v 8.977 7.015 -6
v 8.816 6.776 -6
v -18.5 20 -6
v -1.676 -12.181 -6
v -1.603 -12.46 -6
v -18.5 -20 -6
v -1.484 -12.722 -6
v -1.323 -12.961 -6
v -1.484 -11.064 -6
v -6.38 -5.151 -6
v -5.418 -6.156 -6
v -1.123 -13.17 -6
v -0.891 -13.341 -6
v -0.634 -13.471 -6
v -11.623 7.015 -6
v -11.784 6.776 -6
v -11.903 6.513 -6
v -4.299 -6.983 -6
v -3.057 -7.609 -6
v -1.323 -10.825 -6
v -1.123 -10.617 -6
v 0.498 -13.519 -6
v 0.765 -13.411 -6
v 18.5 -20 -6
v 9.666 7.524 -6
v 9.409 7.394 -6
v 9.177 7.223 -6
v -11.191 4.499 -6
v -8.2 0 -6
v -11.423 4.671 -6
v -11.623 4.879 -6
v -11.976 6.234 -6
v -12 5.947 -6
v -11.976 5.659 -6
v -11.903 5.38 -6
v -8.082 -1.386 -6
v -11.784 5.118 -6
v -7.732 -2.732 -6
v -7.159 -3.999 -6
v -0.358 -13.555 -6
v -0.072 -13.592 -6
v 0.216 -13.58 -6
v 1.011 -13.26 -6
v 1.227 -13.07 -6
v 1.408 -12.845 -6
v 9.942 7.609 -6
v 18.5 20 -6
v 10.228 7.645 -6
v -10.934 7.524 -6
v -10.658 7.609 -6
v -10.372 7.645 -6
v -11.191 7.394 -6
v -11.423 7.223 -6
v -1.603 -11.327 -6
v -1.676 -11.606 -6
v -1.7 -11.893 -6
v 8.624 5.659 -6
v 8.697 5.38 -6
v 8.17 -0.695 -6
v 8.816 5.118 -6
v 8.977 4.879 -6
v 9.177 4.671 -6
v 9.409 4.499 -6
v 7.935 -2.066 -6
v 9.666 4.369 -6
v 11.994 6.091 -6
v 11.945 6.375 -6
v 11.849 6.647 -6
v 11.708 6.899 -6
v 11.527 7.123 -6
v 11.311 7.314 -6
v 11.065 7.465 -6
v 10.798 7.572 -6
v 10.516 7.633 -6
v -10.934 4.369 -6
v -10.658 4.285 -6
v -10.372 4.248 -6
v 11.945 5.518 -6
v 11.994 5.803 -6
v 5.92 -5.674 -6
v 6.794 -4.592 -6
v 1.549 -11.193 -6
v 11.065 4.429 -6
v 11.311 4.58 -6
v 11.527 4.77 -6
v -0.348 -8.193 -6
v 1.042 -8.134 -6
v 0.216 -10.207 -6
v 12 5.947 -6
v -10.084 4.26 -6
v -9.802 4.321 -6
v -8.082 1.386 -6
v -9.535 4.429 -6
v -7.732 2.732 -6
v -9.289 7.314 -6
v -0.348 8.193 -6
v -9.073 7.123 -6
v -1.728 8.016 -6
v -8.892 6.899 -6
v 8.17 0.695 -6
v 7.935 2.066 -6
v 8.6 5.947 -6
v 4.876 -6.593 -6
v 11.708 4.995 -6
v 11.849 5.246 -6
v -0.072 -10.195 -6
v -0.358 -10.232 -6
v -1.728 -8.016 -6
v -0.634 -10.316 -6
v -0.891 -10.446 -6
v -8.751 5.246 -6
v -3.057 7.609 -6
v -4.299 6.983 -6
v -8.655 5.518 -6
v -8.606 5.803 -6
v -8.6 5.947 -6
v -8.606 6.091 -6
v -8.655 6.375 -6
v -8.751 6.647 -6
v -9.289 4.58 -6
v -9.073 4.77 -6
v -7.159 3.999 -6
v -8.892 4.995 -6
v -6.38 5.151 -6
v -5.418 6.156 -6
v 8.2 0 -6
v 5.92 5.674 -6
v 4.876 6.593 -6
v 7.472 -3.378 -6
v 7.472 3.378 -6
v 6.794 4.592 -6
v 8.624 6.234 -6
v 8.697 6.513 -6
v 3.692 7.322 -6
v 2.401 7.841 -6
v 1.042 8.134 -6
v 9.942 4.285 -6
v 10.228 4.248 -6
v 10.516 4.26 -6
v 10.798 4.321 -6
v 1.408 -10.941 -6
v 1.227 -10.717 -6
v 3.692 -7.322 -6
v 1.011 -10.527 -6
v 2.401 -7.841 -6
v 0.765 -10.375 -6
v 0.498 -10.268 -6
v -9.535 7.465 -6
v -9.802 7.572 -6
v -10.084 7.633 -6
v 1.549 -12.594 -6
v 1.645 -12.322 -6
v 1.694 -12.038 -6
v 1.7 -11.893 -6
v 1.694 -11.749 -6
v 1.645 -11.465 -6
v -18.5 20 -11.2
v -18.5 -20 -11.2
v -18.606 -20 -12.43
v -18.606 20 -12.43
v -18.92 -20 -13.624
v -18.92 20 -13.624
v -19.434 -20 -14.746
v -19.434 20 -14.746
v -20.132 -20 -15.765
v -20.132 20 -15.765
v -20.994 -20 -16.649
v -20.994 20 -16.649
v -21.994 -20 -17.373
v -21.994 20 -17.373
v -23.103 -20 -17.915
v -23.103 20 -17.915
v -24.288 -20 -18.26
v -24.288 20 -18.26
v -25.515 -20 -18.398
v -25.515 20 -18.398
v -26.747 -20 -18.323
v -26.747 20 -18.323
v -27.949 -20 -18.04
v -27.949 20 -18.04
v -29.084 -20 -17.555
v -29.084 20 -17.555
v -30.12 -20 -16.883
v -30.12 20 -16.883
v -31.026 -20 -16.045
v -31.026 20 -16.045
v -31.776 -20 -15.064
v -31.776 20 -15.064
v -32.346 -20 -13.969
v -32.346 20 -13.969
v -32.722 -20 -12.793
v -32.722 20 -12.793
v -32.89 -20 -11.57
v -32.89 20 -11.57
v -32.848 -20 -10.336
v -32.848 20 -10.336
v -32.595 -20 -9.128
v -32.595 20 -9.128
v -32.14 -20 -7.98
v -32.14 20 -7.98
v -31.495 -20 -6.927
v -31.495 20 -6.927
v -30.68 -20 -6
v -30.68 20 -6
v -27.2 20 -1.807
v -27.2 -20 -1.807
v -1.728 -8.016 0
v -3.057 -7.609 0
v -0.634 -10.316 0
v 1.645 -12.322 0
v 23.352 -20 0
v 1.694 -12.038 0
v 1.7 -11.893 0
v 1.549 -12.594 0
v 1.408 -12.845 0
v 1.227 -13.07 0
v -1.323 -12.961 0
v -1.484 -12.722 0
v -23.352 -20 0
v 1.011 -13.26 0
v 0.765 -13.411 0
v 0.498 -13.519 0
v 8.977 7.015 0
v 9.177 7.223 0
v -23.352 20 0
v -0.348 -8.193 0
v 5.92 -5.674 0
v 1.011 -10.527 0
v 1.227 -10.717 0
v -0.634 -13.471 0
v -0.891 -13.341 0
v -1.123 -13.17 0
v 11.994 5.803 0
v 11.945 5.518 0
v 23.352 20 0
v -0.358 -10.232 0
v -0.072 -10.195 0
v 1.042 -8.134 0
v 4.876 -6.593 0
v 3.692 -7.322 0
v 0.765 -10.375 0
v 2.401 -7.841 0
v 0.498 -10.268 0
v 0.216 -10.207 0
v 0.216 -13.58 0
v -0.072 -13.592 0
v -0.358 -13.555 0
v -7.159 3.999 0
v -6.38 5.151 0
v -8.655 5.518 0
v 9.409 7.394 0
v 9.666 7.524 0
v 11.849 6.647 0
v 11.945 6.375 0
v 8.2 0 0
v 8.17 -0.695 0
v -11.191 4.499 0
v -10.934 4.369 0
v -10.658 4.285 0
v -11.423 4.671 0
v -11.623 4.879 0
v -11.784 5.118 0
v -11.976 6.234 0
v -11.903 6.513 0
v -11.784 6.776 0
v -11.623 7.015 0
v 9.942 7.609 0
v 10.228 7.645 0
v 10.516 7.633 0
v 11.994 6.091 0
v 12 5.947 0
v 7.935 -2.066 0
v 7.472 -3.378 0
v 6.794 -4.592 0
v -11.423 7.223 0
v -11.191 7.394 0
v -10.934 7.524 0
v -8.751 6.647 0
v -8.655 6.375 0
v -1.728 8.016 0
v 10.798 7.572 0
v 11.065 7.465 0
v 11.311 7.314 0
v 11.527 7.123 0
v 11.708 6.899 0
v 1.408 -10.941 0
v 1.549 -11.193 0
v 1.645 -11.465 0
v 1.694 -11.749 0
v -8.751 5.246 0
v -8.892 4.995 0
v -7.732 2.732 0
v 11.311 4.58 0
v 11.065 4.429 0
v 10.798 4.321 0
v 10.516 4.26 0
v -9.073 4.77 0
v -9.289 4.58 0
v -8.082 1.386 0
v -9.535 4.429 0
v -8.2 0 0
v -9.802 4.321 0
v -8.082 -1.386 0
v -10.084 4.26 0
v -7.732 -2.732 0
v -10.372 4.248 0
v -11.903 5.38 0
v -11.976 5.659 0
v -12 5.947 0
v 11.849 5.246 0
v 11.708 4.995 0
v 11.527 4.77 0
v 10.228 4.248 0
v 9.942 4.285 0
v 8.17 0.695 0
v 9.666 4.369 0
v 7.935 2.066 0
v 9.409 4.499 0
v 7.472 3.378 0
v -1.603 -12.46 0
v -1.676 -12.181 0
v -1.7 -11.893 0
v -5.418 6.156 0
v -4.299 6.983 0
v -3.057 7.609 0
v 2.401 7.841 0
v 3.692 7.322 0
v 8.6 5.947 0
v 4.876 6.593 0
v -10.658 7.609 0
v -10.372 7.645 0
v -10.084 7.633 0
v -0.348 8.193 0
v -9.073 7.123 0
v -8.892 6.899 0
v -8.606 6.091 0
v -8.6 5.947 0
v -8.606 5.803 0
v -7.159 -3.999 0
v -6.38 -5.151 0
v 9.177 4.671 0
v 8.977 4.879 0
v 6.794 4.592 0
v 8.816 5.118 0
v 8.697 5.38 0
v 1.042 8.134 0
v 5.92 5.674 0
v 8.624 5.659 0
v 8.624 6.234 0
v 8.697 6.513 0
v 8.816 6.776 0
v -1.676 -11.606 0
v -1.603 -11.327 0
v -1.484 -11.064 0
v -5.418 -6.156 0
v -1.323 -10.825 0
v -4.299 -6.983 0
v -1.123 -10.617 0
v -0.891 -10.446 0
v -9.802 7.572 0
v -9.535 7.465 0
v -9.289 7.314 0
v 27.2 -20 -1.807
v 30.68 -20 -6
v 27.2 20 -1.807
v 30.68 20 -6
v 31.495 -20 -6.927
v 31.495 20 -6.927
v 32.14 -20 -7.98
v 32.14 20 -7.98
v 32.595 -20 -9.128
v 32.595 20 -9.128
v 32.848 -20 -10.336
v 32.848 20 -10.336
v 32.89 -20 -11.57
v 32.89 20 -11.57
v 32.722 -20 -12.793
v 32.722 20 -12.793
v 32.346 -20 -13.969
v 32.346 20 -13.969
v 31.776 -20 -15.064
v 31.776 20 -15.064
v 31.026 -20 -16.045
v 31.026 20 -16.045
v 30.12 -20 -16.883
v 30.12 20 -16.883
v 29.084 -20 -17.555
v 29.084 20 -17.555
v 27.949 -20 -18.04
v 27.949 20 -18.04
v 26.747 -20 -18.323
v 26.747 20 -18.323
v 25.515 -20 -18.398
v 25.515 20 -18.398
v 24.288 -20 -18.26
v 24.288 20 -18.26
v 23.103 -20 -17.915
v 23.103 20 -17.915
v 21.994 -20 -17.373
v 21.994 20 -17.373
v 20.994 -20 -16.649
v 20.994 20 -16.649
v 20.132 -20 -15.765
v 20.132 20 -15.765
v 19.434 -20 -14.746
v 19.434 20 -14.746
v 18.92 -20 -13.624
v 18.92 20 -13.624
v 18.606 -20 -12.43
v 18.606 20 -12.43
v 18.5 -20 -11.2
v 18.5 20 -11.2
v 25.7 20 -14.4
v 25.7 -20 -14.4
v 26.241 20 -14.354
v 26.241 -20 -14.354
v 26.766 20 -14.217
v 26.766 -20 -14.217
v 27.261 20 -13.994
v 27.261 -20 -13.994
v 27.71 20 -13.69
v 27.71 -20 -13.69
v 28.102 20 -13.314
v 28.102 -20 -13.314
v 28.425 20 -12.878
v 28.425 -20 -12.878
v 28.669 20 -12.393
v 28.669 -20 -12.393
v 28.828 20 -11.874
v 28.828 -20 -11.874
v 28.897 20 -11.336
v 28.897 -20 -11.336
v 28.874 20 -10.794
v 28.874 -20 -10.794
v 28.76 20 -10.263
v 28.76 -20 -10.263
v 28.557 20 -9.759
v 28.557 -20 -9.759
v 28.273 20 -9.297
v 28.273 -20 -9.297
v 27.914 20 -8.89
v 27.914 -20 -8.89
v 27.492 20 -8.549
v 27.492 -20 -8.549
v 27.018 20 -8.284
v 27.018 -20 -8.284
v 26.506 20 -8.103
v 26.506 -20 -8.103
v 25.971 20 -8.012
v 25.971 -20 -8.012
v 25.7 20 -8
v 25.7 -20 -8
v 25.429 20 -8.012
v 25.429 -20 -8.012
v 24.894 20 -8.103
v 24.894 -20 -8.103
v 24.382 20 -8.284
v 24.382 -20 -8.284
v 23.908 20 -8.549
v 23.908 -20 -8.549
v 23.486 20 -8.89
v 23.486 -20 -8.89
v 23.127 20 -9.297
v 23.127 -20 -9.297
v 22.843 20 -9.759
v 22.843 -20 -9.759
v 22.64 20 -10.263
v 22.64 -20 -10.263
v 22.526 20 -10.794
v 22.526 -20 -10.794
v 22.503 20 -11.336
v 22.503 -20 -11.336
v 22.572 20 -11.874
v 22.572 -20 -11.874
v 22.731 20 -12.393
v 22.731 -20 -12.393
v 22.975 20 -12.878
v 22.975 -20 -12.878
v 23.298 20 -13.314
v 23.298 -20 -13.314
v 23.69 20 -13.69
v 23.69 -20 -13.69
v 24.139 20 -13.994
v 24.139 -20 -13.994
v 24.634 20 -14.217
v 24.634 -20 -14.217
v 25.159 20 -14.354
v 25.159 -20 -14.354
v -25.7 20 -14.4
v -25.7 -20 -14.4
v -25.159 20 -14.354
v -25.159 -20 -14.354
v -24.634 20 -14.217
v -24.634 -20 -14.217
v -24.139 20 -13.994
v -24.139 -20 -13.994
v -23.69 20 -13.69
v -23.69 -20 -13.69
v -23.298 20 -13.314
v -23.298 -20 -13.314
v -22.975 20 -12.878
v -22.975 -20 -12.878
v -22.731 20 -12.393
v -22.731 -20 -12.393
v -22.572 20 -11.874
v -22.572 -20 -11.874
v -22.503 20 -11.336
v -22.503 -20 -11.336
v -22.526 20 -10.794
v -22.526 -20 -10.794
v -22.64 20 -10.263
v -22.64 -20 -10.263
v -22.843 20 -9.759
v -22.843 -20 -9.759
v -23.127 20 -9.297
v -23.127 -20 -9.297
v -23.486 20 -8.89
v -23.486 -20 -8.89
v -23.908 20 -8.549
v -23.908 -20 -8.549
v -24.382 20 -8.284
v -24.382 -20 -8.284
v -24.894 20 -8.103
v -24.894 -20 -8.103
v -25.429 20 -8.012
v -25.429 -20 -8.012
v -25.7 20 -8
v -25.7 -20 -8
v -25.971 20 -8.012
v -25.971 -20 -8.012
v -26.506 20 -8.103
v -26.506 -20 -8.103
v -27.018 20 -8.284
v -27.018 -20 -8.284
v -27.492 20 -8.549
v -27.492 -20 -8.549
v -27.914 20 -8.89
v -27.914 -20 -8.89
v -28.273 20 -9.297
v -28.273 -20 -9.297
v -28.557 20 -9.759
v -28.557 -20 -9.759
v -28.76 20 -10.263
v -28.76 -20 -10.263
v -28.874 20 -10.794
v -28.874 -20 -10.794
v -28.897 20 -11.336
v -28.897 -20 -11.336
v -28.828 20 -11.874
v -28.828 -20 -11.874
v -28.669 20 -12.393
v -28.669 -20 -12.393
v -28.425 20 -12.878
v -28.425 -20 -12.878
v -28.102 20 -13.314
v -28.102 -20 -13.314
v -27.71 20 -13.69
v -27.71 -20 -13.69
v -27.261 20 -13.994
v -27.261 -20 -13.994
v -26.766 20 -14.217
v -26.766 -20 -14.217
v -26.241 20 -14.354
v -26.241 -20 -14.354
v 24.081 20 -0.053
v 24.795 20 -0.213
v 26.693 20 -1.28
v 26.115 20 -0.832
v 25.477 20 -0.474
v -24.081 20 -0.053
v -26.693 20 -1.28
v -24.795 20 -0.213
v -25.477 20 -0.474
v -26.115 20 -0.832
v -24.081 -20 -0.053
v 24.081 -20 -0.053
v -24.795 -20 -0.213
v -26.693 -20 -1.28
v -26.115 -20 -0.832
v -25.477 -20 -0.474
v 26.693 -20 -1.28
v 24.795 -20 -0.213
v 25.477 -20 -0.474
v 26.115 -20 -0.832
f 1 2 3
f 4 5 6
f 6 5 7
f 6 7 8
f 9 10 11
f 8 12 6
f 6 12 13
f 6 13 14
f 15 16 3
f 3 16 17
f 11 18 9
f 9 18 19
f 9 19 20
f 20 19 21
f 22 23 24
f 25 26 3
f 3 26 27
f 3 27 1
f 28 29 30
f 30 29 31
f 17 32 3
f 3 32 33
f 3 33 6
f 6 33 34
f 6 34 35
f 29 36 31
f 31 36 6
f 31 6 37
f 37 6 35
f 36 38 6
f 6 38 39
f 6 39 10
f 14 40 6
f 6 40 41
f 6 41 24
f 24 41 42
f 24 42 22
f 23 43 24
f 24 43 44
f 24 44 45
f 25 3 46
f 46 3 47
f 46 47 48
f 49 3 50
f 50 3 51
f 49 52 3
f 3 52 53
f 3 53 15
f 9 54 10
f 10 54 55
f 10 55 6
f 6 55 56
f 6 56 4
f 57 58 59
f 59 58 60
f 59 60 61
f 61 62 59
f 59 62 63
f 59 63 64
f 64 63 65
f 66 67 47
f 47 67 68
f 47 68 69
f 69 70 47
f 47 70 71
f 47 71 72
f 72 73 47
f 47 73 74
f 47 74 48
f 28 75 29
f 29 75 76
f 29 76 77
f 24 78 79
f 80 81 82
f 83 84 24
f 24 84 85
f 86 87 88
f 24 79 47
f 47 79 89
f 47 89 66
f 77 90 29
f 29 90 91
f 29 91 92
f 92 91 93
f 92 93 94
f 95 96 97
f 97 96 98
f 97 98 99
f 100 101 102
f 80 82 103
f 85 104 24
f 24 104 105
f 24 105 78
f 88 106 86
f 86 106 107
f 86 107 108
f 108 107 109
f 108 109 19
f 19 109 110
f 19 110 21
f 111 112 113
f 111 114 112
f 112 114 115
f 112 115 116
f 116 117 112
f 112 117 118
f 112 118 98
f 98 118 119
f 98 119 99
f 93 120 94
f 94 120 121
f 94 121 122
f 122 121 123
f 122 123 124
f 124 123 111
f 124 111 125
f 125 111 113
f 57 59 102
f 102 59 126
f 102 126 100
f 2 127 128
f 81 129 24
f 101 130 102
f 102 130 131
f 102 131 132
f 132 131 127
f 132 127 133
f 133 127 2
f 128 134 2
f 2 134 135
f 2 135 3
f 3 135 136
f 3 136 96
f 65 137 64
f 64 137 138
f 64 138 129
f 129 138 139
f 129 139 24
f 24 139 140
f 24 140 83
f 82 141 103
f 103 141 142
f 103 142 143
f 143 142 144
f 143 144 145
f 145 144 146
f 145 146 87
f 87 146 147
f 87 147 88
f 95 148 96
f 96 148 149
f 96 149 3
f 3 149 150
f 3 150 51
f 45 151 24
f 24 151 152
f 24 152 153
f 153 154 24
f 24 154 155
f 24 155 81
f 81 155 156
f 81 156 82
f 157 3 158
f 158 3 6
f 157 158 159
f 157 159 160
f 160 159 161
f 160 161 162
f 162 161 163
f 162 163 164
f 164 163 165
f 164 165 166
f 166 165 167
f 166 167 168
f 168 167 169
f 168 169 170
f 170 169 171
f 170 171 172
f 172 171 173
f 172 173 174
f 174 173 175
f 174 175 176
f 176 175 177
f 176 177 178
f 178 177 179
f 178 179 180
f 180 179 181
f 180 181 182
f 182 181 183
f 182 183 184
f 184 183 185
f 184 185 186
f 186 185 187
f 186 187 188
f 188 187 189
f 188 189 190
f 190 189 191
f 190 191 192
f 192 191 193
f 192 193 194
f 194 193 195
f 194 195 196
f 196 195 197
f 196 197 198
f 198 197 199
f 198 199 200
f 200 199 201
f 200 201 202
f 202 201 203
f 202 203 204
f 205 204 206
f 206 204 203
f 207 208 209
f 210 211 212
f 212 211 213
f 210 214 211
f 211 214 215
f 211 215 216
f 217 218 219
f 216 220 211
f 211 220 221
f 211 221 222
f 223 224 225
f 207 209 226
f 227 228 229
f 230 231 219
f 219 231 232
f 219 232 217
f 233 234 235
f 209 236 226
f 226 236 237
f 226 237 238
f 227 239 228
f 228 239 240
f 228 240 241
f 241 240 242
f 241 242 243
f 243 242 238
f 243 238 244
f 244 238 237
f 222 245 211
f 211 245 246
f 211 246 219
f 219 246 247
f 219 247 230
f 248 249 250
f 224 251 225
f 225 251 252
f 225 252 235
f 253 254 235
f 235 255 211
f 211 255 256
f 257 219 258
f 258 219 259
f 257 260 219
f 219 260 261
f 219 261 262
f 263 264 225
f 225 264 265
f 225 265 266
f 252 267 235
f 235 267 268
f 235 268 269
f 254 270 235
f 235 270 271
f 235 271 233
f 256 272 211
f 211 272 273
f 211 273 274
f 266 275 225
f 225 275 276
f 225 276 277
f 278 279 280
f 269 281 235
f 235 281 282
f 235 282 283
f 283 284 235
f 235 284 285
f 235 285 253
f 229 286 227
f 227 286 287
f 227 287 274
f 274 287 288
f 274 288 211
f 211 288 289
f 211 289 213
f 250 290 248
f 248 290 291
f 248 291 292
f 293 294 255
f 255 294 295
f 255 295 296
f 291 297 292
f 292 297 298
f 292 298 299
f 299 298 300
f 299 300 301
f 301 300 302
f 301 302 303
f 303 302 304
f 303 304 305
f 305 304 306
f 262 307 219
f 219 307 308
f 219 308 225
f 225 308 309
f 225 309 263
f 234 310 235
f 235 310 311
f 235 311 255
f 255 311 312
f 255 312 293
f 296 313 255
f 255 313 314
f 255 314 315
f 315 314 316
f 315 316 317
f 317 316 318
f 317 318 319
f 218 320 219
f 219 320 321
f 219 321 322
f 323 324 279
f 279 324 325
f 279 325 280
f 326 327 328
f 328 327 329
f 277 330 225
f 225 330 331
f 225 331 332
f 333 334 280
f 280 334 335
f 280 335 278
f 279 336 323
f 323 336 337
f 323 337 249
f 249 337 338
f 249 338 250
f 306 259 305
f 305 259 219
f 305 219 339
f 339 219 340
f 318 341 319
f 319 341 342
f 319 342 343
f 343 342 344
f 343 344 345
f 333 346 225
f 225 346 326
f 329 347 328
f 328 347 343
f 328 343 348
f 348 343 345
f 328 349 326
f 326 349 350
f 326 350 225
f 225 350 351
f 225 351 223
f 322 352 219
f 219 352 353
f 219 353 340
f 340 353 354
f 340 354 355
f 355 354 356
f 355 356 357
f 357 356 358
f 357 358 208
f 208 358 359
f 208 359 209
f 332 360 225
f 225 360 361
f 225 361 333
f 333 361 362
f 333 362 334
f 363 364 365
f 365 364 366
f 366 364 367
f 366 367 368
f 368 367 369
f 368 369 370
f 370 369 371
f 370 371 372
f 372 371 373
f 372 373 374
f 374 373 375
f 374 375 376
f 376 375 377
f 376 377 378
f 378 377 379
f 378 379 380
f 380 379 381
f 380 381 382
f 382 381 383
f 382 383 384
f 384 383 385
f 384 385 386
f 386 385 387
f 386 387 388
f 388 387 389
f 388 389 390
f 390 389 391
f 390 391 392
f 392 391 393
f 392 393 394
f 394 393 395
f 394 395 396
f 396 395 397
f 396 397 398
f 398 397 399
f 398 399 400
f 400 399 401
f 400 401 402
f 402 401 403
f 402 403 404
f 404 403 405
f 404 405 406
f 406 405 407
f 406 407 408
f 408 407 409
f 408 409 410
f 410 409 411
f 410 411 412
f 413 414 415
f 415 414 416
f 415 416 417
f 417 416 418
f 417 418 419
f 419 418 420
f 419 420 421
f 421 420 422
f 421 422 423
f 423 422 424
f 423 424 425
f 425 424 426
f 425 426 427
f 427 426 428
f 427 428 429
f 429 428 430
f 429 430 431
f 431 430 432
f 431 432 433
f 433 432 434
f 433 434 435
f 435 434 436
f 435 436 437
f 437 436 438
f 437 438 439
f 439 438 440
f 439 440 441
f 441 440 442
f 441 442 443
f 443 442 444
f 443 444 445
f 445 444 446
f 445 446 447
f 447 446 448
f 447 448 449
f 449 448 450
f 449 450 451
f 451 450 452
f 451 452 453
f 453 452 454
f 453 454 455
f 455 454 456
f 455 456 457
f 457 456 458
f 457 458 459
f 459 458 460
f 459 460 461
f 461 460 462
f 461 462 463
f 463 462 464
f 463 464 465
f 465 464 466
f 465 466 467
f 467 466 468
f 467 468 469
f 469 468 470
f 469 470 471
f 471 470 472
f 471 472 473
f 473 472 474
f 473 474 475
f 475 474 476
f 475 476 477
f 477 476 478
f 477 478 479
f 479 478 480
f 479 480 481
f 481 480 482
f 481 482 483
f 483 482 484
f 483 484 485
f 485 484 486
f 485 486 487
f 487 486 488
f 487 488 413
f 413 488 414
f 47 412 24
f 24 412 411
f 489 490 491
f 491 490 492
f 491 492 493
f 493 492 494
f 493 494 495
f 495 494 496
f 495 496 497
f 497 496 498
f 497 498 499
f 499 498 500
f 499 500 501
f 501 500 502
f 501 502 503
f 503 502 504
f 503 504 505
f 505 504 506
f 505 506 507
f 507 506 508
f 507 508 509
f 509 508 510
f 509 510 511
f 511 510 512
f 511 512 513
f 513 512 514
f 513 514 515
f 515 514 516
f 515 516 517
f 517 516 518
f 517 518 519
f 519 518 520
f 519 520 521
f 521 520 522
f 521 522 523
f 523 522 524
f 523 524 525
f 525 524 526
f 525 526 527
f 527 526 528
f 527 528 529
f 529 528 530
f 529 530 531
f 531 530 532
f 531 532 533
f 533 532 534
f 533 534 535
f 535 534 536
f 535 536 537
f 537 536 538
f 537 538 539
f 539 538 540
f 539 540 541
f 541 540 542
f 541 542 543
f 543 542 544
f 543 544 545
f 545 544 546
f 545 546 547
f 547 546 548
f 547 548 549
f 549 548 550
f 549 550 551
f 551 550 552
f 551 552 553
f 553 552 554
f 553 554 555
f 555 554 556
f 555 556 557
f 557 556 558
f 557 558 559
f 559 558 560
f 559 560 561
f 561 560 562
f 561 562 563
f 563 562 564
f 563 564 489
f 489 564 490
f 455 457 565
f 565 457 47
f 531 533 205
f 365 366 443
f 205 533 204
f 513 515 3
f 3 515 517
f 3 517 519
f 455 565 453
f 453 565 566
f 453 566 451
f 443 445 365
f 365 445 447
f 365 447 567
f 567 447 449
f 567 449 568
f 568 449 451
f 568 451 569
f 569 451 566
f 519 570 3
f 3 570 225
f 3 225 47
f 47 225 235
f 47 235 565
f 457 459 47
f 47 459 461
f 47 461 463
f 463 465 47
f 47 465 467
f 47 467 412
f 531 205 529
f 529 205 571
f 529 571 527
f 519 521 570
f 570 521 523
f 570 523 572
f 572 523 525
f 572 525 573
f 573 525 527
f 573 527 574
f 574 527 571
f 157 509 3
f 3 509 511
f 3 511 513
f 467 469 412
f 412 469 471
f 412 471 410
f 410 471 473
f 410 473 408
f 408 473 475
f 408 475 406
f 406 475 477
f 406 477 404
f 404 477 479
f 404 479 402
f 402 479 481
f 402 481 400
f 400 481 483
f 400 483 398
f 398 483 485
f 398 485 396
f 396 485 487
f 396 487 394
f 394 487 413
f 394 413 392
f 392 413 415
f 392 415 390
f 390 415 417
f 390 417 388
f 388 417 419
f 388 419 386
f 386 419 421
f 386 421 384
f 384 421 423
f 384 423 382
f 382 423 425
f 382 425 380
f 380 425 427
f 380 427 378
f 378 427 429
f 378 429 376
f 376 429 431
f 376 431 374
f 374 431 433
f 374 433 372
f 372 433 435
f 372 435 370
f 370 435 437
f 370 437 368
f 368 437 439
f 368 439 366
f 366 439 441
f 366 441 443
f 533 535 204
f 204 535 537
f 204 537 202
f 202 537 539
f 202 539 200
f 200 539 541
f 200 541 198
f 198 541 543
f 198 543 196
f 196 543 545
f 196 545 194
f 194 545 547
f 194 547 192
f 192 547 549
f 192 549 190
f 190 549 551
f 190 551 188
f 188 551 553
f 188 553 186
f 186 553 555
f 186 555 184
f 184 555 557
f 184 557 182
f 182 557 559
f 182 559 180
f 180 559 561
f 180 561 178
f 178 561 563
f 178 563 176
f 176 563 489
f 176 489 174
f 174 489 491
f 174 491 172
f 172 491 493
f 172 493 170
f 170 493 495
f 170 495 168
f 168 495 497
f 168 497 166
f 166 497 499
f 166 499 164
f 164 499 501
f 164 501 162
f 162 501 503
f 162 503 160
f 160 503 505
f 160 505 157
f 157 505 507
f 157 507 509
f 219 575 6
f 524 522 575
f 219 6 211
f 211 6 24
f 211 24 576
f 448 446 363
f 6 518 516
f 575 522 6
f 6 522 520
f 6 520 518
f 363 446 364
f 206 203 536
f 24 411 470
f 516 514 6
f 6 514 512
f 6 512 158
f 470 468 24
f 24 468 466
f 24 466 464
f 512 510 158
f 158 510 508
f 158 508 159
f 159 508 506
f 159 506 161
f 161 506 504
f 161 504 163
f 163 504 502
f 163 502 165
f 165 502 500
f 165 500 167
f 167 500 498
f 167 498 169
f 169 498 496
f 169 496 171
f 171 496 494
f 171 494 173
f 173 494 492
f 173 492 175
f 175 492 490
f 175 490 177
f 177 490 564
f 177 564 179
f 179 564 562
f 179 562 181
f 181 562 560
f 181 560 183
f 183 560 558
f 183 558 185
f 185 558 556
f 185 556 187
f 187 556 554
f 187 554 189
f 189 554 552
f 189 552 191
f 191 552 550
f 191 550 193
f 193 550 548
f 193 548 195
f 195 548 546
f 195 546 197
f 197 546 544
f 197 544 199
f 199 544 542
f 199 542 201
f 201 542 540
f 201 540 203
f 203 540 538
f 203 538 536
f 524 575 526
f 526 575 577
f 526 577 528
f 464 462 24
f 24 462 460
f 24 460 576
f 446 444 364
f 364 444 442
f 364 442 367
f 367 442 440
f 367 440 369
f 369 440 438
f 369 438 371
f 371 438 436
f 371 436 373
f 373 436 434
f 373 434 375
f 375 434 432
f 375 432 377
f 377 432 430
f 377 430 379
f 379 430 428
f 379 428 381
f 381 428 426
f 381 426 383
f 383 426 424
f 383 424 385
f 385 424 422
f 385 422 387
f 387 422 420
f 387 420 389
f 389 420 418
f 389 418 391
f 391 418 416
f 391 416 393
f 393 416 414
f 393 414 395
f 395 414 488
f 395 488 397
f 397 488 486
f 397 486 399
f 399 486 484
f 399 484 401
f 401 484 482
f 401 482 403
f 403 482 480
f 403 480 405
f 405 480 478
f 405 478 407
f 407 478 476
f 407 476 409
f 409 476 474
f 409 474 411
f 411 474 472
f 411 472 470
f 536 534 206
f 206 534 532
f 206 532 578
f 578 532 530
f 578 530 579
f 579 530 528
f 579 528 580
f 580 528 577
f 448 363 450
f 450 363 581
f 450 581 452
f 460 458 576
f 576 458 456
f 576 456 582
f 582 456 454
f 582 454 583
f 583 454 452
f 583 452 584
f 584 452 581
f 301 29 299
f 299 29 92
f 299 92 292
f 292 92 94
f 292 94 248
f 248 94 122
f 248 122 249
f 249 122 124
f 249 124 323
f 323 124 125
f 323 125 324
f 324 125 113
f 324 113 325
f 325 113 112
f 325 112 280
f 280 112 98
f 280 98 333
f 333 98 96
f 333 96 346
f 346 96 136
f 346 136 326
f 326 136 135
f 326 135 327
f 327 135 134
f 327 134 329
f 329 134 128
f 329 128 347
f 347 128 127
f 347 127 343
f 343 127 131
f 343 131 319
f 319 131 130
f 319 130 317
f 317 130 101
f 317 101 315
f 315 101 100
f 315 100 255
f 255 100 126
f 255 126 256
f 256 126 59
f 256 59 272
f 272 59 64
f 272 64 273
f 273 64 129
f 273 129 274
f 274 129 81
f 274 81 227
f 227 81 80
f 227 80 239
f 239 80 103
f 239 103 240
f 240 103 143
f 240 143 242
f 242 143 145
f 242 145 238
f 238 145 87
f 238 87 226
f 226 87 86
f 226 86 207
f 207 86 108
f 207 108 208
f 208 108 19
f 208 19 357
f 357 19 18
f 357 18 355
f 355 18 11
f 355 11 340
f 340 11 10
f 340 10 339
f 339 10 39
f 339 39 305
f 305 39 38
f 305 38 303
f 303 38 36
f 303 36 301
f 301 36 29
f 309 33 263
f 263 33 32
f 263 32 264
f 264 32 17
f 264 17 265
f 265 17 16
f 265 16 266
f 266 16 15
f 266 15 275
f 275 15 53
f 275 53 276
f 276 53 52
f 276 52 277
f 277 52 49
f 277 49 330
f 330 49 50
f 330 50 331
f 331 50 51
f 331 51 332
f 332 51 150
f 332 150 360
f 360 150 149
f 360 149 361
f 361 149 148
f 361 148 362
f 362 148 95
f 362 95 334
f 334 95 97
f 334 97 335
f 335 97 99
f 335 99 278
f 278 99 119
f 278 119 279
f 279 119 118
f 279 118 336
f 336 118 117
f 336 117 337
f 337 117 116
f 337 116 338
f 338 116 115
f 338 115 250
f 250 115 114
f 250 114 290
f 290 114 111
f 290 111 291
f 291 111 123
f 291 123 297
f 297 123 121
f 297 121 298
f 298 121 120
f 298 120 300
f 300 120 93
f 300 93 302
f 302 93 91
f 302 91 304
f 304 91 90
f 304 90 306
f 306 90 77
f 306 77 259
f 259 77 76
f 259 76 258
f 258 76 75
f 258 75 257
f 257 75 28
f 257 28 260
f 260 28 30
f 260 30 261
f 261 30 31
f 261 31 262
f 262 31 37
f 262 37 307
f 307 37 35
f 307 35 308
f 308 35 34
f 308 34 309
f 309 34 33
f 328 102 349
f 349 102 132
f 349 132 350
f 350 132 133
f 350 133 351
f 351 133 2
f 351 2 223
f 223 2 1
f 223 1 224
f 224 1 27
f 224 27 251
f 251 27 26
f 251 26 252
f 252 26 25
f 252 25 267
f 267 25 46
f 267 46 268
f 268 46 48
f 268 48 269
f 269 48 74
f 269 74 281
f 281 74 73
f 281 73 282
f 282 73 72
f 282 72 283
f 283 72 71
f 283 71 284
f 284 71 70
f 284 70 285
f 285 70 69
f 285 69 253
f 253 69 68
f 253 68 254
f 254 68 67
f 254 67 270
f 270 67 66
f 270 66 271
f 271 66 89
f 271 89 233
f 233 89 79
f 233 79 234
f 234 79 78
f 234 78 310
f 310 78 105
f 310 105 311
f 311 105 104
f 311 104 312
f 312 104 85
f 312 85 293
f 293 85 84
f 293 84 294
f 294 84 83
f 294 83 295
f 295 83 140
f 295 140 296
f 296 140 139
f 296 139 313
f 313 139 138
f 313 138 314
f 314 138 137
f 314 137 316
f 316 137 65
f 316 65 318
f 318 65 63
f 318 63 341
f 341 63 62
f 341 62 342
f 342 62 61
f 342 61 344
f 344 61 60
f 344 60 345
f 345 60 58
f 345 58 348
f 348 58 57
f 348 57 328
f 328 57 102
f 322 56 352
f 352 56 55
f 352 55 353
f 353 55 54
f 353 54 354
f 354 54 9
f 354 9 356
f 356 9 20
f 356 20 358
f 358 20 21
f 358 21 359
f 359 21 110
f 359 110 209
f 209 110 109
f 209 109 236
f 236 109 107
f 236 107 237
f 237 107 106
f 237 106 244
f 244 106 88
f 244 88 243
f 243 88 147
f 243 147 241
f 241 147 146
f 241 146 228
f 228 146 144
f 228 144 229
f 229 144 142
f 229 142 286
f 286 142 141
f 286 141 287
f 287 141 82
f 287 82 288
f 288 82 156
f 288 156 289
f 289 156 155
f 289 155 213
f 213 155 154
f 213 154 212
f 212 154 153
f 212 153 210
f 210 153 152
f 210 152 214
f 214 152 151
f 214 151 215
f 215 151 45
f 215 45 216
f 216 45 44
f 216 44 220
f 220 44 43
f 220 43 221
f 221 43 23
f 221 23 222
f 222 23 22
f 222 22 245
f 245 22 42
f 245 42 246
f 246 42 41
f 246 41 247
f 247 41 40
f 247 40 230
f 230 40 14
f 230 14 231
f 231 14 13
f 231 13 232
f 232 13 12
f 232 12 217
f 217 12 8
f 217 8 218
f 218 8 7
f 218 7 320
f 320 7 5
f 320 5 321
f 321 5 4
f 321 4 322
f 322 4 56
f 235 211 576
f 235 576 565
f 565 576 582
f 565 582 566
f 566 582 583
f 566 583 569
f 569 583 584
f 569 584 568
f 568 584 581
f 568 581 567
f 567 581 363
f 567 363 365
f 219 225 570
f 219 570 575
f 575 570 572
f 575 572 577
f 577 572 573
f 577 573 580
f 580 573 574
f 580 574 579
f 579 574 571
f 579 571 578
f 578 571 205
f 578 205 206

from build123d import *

# Parameters (mm, degrees)
SKETCH1_W           = 37
SKETCH1_H           = 6
SKETCH1_R           = 3.2
BOSS_EXTRUDE1_DEPTH = 20
CUT_EXTRUDE2_START  = -6
SKETCH2_R           = 8.2
SKETCH2_R_2         = 1.7
CUT_EXTRUDE2_DEPTH  = 7
FILLET1_R           = 5


with BuildPart() as part:
    # Sketch1 → Boss-Extrude1 (new body, symmetric)
    with BuildSketch(Plane(origin=(0, 0, 0), x_dir=(1, 0, 0), z_dir=(0, 1, 0))):
        with Locations((0, 3)):
            Rectangle(SKETCH1_W, SKETCH1_H)
        with BuildLine():
            Line((18.5, 6), (18.5, 0))
            Line((18.5, 0), (25.7, 0))
            Line((25.7, 0), (30.679959839, 6))
            ThreePointArc((30.679959839, 6), (28.527038128, 17.821771321), (18.5, 11.2))
            Line((18.5, 11.2), (18.5, 6))
        make_face()
        with Locations((25.7, 11.2)):
            Circle(SKETCH1_R, mode=Mode.SUBTRACT)
        with BuildLine():
            Line((-25.7, 0), (-18.5, 0))
            Line((-18.5, 0), (-18.5, 6))
            Line((-18.5, 6), (-18.5, 11.2))
            ThreePointArc((-18.5, 11.2), (-28.527038128, 17.821771321), (-30.679959839, 6))
            Line((-30.679959839, 6), (-25.7, 0))
        make_face()
        with Locations((-25.7, 11.2)):
            Circle(SKETCH1_R, mode=Mode.SUBTRACT)
    extrude(amount=BOSS_EXTRUDE1_DEPTH, both=True)

    # Sketch2 → Cut-Extrude2 (cut, through all)
    with BuildSketch(Plane.XY.offset(CUT_EXTRUDE2_START)):
        Circle(SKETCH2_R)
        with Locations((0, -11.893415545)):
            Circle(SKETCH2_R_2)
        with Locations((-10.3, 5.946707773)):
            Circle(SKETCH2_R_2)
        with Locations((10.3, 5.946707773)):
            Circle(SKETCH2_R_2)
    extrude(amount=CUT_EXTRUDE2_DEPTH, mode=Mode.SUBTRACT)

    # Fillet1
    fillet1_edges = [part.edges().sort_by_distance(p)[0] for p in [
        (25.7, 0, 0),
        (-25.7, 0, 0),
    ]]
    fillet(fillet1_edges, radius=FILLET1_R)


solid = part.part
